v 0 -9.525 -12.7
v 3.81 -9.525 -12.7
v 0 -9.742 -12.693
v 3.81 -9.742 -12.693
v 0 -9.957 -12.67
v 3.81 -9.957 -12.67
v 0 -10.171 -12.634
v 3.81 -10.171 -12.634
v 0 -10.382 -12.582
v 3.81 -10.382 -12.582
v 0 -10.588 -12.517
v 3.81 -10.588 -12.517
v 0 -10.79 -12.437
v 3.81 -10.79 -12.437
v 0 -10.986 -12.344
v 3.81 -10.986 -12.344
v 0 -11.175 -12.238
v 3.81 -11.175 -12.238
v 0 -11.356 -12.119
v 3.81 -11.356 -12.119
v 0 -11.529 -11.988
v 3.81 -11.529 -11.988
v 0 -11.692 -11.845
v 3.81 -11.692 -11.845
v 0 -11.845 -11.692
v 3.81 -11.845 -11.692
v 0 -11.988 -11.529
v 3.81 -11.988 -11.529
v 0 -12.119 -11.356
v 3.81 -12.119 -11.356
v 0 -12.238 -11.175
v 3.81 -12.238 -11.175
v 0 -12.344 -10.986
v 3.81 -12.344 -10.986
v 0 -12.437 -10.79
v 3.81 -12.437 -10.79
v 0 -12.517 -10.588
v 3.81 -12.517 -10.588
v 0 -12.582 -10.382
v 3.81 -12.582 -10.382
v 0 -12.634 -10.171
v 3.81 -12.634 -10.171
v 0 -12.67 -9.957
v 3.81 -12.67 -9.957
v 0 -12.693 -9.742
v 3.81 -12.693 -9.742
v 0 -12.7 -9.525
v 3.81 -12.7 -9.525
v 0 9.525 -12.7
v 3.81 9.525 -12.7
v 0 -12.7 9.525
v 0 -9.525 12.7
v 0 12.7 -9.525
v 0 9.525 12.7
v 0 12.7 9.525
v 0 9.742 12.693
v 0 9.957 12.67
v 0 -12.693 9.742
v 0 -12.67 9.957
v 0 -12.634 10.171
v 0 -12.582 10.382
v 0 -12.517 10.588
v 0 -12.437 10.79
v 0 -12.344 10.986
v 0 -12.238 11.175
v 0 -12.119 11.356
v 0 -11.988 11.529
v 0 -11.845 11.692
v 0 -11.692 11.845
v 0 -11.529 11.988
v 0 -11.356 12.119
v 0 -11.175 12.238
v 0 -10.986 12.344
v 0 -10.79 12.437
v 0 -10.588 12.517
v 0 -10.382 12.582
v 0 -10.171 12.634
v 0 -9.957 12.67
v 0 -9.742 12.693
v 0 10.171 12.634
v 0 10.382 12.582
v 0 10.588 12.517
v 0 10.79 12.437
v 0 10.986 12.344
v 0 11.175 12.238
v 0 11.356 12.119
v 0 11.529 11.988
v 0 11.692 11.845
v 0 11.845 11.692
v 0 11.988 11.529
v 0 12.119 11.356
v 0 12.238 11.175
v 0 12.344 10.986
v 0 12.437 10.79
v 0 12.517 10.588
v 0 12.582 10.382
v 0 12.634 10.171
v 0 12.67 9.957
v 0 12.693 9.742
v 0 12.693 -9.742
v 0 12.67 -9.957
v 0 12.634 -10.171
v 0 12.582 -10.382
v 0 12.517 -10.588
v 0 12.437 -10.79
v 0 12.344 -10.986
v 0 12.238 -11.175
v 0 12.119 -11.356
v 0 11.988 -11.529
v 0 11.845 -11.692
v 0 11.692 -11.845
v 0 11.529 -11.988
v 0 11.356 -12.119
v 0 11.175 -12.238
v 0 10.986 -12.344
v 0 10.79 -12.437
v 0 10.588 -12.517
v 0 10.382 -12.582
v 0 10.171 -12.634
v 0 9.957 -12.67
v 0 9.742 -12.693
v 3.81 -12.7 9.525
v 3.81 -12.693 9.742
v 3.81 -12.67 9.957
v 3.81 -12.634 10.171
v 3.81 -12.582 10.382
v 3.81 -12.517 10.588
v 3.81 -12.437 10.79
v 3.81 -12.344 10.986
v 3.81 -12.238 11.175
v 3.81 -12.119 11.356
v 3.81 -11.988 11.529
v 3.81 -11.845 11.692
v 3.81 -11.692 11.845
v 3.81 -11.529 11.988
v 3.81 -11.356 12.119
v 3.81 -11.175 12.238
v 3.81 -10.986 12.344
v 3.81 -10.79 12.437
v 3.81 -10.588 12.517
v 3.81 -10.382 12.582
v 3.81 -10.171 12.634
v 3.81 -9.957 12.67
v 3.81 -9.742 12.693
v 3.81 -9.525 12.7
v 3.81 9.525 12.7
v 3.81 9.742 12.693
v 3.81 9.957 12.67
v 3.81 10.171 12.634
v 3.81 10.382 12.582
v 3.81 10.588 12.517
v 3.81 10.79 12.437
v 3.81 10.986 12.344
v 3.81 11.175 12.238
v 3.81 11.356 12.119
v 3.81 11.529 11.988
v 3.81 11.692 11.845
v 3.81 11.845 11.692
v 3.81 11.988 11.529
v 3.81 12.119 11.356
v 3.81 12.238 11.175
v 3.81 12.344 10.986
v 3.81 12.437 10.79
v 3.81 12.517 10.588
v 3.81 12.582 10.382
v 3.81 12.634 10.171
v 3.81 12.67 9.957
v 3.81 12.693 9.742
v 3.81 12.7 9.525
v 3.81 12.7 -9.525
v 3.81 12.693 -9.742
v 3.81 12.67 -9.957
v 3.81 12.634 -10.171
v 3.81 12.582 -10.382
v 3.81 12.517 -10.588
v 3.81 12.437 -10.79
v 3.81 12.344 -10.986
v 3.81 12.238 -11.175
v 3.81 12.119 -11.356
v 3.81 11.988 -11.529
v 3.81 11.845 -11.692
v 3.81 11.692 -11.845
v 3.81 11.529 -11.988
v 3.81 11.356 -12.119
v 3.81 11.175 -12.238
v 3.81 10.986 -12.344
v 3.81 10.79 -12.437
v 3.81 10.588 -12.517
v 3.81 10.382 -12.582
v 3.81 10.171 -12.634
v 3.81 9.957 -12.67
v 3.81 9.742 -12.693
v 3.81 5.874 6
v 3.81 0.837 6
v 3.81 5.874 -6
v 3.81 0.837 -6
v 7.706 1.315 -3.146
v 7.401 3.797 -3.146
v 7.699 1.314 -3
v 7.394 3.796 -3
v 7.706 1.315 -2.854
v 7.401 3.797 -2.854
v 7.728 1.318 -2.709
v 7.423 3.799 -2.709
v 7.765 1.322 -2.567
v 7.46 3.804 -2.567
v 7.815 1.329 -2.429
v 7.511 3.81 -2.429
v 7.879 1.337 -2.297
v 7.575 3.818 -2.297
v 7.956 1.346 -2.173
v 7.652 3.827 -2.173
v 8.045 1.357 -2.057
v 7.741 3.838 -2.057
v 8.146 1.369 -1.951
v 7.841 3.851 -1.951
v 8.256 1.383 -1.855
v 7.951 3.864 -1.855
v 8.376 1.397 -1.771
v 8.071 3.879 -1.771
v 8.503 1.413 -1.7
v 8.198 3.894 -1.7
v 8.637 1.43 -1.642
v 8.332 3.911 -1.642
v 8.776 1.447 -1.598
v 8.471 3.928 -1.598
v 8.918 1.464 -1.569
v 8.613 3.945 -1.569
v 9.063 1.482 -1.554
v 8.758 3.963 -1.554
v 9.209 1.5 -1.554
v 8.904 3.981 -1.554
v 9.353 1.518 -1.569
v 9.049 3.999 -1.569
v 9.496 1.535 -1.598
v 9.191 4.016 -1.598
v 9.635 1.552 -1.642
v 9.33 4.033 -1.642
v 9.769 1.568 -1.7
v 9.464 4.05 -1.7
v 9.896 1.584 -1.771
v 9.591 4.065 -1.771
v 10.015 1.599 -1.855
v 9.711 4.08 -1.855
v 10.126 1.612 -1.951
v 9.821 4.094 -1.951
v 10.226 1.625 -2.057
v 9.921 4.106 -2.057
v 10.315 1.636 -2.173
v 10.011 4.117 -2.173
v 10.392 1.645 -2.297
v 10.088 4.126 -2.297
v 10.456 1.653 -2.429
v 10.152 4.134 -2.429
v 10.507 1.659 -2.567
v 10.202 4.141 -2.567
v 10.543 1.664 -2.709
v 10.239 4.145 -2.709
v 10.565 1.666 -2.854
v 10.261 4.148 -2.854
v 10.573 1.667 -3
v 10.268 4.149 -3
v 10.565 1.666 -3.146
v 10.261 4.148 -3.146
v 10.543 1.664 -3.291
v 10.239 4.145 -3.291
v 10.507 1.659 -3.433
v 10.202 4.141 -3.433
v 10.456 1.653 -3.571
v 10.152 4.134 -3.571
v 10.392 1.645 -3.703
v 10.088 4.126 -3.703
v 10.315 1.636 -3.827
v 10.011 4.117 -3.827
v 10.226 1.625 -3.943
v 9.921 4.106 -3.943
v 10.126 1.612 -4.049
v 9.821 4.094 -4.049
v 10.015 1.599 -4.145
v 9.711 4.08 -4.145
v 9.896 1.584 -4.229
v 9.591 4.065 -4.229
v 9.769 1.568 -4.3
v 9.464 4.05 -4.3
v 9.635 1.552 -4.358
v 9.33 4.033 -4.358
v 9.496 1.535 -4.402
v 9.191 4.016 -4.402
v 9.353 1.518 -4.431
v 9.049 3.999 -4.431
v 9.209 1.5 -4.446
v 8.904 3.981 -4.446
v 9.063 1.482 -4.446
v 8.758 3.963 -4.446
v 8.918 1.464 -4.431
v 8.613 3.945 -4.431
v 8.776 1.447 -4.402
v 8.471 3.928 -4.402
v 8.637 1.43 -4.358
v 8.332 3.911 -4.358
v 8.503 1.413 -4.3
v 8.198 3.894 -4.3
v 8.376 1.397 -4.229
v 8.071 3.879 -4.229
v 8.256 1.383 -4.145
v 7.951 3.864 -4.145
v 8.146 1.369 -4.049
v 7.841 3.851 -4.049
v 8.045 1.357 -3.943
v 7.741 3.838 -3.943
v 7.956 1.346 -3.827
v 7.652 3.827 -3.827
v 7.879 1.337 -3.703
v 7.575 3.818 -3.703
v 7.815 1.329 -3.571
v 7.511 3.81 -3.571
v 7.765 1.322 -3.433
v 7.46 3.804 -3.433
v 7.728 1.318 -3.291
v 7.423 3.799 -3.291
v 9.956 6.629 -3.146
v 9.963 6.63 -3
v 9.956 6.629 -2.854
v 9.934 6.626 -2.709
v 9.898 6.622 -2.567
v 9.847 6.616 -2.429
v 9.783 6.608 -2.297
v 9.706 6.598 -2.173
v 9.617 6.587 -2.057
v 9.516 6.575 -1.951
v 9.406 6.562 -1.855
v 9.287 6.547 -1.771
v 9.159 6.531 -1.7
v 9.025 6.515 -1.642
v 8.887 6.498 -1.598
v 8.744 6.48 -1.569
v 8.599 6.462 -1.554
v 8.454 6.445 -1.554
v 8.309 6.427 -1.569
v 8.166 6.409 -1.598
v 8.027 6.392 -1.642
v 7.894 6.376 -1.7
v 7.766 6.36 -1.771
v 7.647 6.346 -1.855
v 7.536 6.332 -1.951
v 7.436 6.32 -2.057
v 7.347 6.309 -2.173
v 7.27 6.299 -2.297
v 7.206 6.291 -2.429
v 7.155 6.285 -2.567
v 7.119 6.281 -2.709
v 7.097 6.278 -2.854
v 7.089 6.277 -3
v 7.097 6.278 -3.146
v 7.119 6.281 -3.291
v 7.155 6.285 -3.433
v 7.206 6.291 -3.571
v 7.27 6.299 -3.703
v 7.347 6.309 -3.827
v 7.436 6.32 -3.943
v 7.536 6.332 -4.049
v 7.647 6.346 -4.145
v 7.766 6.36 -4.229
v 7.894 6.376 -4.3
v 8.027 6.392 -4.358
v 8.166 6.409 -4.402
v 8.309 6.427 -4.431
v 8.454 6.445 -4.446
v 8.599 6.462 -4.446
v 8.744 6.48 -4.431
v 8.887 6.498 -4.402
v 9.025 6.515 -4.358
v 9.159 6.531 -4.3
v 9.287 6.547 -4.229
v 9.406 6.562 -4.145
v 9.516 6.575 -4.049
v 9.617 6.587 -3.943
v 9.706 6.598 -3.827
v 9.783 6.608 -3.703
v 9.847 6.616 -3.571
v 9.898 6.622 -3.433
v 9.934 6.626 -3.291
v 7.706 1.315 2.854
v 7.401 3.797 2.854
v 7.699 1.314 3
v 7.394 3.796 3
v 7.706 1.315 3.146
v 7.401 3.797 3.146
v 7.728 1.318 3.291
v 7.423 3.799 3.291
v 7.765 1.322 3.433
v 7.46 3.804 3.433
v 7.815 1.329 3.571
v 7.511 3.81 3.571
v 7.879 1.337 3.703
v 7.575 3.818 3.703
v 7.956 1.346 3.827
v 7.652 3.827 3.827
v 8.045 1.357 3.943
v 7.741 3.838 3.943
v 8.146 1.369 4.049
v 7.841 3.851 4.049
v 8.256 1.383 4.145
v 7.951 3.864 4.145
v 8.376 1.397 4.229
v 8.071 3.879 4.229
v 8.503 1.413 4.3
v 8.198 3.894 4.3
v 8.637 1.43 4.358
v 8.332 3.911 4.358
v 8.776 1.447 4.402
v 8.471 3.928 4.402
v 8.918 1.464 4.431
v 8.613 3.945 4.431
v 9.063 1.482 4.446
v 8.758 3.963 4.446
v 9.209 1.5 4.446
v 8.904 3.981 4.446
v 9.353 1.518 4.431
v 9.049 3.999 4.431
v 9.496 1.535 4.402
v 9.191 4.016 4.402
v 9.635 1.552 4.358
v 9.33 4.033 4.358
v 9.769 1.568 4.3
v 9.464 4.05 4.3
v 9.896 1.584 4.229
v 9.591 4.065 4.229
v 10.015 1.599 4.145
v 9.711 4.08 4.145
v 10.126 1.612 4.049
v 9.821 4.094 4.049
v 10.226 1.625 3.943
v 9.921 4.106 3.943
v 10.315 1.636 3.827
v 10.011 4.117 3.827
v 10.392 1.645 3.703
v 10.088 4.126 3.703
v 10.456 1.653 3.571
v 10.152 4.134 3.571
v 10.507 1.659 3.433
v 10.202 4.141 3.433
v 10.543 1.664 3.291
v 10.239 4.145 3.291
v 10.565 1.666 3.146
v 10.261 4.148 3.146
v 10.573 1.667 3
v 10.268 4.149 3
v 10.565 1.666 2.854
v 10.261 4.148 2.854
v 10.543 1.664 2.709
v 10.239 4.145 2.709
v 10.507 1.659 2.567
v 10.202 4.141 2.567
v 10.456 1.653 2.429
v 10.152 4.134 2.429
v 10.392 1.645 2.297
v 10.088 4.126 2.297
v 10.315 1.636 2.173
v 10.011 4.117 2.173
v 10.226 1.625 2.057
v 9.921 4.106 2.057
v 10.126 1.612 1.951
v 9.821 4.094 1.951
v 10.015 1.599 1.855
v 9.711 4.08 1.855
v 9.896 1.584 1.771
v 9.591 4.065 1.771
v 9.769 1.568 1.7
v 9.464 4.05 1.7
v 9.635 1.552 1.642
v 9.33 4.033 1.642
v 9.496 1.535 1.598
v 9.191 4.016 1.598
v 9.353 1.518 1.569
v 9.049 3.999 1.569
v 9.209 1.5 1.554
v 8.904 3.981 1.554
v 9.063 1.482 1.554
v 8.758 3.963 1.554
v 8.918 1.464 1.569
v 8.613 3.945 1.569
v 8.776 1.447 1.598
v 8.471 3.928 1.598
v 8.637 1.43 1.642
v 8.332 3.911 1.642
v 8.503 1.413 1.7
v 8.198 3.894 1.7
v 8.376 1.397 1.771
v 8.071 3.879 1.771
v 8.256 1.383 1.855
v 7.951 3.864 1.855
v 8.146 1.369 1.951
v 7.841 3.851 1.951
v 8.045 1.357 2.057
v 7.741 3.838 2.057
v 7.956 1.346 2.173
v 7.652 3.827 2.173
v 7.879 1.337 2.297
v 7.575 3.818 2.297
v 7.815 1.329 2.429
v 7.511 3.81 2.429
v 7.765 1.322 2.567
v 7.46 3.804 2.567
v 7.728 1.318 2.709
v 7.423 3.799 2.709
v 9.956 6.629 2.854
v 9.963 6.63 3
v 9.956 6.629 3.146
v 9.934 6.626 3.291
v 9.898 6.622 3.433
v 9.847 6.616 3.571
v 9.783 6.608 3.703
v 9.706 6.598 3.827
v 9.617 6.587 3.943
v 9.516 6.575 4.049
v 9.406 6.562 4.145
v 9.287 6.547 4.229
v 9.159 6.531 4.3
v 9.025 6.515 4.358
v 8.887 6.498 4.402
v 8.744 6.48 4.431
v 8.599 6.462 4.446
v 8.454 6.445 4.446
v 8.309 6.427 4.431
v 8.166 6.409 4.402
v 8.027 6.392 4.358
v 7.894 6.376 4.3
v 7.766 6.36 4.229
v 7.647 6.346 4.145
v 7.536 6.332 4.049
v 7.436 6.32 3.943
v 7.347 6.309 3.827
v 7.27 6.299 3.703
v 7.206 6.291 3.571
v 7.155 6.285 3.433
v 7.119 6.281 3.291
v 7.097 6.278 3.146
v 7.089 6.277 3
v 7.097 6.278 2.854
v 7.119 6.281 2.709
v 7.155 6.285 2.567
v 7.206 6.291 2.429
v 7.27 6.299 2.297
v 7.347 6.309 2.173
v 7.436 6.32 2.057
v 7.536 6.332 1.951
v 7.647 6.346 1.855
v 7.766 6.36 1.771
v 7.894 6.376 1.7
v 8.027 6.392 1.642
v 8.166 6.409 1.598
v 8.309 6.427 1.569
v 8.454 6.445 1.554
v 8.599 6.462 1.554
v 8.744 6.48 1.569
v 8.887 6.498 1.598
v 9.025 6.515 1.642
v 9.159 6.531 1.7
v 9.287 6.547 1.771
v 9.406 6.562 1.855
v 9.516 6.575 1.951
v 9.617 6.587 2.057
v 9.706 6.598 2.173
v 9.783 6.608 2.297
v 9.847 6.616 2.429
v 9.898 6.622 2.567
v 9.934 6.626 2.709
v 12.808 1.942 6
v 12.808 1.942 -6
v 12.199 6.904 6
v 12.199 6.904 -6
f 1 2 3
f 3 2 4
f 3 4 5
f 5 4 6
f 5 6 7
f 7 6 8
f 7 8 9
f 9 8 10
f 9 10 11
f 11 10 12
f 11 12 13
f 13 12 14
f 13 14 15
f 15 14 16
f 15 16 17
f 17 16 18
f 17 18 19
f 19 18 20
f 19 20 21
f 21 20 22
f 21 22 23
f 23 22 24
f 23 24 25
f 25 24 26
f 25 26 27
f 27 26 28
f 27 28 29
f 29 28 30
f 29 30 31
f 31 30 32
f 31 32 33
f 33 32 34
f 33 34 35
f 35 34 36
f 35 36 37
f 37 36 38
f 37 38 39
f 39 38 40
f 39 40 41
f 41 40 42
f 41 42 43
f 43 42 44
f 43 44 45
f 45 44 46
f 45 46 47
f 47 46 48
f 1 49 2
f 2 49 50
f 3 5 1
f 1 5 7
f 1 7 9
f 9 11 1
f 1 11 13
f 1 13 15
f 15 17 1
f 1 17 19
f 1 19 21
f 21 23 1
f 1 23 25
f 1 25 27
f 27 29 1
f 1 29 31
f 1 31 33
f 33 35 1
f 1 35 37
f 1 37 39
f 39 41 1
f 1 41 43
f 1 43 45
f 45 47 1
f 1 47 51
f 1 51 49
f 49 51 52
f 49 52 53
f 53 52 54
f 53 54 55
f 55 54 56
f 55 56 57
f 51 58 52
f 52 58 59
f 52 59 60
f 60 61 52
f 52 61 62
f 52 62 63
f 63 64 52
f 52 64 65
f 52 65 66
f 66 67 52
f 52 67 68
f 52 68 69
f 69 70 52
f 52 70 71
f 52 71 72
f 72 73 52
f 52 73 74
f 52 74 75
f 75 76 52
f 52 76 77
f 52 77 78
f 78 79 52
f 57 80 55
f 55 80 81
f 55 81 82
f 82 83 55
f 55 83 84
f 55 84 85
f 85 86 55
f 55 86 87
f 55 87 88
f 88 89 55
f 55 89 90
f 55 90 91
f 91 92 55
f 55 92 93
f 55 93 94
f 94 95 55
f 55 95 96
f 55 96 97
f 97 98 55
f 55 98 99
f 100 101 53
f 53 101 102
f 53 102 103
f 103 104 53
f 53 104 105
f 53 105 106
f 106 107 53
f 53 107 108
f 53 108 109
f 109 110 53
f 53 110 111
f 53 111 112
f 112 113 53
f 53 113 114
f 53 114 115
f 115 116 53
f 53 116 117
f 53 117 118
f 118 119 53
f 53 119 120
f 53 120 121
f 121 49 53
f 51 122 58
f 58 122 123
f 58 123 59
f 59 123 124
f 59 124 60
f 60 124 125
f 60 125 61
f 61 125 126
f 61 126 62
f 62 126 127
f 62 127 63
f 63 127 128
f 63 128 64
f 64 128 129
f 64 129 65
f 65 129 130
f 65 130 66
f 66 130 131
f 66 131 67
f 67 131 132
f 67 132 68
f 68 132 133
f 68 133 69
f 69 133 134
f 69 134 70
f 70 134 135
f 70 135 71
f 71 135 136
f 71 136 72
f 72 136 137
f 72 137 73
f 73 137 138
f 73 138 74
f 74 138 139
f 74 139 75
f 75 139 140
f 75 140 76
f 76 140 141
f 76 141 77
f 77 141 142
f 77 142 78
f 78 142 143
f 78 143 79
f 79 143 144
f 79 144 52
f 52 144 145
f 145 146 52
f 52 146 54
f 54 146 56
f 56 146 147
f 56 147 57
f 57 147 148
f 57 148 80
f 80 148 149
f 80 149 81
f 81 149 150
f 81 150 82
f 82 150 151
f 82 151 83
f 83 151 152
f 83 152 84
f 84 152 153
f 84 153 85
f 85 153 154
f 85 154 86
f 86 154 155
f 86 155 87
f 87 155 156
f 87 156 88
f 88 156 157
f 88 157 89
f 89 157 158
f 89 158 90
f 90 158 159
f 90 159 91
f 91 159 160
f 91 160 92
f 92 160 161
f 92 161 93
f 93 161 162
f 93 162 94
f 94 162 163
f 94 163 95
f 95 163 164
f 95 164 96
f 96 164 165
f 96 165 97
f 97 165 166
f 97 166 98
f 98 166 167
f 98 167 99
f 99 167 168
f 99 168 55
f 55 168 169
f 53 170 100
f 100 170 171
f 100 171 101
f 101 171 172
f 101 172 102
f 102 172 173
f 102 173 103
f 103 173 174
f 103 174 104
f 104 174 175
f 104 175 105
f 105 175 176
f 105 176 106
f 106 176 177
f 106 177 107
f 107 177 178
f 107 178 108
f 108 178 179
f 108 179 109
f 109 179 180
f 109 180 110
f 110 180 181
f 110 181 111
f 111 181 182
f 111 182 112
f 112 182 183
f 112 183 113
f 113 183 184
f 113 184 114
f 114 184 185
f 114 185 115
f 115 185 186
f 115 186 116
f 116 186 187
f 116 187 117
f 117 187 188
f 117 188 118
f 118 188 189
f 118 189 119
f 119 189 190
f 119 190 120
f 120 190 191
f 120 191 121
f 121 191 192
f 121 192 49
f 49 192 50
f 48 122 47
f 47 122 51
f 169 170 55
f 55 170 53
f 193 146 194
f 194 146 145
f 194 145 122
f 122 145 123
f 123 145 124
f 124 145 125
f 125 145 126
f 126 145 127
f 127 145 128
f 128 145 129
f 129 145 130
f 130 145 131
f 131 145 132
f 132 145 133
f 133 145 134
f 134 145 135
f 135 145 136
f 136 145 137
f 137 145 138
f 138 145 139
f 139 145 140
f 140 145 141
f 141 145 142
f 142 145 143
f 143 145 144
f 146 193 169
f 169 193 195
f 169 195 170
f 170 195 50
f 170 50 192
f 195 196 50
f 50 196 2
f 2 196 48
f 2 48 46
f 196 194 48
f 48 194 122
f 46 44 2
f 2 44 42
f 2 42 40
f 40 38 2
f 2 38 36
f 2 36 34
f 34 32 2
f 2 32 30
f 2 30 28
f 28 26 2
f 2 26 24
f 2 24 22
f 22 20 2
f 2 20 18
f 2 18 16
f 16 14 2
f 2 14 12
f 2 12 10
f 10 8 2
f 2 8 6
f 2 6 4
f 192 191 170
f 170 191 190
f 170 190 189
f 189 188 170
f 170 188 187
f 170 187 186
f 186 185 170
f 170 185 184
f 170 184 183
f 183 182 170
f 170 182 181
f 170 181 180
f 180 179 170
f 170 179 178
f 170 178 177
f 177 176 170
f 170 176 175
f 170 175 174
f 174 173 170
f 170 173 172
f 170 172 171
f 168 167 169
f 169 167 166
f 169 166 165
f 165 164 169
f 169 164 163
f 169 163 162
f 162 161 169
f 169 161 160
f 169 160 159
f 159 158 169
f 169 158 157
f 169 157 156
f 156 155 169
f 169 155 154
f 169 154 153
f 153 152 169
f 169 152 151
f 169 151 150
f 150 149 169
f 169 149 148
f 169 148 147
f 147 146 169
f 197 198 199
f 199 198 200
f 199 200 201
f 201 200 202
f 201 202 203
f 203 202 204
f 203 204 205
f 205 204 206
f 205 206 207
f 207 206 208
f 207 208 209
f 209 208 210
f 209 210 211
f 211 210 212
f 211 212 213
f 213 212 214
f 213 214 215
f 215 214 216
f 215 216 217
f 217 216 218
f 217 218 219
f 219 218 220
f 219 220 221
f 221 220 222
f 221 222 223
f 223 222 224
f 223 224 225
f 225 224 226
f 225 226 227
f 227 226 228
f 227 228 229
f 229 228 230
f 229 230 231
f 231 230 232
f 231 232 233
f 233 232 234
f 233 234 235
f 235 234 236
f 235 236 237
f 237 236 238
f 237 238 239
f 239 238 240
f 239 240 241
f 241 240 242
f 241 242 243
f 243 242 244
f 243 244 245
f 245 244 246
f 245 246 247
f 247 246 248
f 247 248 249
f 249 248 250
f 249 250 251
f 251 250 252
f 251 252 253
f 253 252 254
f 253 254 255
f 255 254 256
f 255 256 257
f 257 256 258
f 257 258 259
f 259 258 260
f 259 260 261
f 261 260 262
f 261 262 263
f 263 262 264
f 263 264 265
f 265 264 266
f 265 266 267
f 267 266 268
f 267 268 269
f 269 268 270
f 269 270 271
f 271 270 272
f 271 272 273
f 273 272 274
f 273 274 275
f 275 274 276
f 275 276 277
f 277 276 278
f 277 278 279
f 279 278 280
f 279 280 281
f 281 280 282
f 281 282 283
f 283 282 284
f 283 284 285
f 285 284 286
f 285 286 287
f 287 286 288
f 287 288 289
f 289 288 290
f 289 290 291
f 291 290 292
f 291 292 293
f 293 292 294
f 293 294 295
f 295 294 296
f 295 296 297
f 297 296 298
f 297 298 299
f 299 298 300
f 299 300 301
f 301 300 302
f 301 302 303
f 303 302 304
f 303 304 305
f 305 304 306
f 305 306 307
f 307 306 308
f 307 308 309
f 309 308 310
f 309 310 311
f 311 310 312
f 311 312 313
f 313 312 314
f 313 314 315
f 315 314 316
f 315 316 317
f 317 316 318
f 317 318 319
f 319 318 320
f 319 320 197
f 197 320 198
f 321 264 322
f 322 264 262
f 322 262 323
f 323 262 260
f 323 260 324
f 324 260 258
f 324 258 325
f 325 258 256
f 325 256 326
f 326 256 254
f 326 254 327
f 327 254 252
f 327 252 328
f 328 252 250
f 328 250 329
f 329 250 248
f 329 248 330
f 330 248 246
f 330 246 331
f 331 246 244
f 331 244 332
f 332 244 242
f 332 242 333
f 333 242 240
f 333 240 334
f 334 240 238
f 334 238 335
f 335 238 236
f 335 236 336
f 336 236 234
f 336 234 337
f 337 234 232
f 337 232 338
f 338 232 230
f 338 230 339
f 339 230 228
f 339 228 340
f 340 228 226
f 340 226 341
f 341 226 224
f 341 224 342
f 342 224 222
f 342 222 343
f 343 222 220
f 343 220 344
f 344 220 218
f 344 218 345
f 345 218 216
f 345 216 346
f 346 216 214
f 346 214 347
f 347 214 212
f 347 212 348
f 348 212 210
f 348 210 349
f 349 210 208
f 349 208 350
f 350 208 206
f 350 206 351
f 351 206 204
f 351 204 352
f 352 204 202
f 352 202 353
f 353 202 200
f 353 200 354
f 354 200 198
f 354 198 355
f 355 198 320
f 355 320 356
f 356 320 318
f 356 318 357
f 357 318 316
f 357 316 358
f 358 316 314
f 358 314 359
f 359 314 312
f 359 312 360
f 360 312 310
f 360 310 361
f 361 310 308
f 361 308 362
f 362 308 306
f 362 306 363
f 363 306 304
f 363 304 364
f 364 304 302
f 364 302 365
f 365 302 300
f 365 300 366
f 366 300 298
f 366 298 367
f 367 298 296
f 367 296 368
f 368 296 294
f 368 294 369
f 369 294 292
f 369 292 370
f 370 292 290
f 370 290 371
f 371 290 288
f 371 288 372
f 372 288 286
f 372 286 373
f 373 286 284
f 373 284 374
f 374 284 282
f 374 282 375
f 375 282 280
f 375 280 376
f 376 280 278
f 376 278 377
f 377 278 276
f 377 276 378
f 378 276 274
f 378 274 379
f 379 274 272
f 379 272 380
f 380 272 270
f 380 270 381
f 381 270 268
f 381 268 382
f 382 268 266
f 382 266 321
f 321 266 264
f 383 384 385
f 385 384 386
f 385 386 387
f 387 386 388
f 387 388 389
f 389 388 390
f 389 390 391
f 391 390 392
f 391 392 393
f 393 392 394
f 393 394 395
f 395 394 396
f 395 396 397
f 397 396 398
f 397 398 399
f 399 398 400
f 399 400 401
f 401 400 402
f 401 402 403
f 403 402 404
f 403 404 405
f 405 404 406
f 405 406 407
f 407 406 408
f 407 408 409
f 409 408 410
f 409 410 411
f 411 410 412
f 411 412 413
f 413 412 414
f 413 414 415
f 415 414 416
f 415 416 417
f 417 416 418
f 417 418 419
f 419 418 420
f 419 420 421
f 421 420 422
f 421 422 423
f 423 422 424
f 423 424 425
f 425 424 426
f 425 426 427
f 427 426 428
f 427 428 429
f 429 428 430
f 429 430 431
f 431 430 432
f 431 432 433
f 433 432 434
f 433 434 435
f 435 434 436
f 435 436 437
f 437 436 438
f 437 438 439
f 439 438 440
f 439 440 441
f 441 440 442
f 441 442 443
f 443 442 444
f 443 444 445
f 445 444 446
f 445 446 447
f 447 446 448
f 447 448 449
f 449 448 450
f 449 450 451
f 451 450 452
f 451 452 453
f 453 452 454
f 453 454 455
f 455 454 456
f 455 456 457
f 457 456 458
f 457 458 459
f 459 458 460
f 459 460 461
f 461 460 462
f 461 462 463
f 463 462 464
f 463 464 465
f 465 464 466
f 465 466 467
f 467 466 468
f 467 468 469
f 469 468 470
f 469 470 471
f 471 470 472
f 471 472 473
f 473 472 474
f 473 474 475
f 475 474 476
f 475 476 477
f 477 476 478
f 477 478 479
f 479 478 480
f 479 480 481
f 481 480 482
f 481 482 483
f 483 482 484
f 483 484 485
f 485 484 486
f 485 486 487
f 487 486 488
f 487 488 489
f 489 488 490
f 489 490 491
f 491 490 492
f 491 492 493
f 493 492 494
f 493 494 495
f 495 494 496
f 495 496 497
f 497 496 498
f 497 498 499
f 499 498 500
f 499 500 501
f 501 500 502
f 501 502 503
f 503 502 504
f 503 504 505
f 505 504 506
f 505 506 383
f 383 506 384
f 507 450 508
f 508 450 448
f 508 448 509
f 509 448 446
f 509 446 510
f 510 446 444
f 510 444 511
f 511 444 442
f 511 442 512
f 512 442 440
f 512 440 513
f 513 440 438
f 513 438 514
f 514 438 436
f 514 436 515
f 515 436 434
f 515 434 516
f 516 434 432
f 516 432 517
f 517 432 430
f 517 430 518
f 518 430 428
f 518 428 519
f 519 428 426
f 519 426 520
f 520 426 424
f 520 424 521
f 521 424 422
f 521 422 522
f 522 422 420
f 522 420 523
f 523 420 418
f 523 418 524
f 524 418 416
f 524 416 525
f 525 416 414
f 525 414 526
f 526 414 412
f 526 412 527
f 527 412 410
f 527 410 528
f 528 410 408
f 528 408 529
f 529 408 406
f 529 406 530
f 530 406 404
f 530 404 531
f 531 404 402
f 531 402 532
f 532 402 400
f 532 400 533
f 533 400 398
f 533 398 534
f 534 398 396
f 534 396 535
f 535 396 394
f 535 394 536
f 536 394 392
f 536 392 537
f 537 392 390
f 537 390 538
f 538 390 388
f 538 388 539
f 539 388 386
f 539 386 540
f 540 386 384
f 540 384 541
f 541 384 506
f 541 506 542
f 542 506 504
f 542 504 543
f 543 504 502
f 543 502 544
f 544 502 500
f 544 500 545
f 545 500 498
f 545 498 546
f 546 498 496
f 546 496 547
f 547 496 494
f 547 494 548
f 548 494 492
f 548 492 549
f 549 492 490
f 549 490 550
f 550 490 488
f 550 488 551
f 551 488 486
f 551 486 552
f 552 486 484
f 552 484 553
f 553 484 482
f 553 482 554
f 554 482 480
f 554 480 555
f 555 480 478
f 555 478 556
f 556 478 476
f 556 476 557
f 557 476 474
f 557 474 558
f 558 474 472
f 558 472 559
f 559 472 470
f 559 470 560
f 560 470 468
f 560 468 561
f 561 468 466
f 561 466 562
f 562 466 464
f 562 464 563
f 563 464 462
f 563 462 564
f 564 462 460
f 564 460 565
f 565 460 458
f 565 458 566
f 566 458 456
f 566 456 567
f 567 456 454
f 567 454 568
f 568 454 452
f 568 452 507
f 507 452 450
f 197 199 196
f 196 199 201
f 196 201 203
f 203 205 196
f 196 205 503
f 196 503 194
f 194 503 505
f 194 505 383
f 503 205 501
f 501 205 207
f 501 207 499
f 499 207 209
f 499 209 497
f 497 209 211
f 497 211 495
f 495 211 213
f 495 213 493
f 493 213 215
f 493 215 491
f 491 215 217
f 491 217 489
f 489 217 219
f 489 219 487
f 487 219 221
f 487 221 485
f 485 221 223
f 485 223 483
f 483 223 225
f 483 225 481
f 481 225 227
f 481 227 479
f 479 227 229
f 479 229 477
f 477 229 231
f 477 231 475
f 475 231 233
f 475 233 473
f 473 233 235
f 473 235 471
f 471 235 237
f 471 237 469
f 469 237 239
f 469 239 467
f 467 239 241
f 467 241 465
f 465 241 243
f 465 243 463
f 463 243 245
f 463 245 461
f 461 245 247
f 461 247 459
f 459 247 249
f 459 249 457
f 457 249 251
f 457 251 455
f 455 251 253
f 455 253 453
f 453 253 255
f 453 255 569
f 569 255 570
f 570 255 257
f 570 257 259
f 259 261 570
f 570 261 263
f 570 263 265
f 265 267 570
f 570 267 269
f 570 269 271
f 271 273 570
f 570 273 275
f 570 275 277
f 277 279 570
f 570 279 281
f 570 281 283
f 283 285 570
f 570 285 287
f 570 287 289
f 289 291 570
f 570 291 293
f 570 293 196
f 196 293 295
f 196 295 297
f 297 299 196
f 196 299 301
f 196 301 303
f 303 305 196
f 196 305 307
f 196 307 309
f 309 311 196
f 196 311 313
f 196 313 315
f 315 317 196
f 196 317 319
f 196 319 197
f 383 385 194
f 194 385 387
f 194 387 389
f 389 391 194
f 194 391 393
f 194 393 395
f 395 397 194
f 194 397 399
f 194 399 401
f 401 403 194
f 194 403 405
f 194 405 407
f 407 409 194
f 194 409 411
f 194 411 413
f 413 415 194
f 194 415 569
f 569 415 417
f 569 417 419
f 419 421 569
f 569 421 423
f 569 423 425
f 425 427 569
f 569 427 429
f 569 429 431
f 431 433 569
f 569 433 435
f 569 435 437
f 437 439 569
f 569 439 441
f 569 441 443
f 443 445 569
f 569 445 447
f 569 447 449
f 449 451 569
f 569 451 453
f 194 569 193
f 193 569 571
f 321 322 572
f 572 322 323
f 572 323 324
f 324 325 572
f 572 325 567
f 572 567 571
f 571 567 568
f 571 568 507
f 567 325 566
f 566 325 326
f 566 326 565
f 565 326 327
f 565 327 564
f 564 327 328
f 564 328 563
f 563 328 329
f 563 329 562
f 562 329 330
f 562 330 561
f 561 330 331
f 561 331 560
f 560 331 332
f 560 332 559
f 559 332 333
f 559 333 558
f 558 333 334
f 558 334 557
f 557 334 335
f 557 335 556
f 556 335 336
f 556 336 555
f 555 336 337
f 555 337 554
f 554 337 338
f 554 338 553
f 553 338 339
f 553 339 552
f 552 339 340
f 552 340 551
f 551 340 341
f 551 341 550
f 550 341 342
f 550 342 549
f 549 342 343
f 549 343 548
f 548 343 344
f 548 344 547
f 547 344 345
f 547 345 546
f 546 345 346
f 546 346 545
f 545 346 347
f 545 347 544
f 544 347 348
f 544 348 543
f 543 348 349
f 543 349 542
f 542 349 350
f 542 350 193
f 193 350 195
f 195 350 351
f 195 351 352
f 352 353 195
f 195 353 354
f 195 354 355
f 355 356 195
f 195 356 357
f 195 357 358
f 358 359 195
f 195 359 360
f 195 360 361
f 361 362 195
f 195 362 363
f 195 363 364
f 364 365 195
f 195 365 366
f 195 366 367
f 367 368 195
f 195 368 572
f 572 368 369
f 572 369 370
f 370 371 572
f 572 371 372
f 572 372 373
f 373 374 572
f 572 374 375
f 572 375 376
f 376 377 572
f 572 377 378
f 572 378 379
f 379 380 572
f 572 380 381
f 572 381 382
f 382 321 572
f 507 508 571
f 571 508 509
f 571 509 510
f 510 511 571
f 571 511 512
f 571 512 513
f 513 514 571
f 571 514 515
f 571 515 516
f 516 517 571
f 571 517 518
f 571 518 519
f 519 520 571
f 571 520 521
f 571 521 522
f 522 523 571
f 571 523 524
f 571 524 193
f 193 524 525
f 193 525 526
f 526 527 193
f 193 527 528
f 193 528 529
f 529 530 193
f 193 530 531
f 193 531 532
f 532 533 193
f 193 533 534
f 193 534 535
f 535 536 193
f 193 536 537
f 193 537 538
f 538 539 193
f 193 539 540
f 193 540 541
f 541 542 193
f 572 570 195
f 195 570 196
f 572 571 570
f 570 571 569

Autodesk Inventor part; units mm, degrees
ref_plane "YZ Plane" through (0, 0, 0) normal (1, 0, 0) x (0, 1, 0)
ref_plane "XZ Plane" through (0, 0, 0) normal (0, 1, 0) x (-1, 0, 0)
sketch "Sketch1" plane through (0, 0, 0) normal (1, 0, 0) x (0, 1, 0)
  line L0 (-12.7, 12.7) -> (12.7, 12.7)
  line L1 (12.7, 12.7) -> (12.7, -12.7)
  line L2 (12.7, -12.7) -> (-12.7, -12.7)
  line L3 (-12.7, -12.7) -> (-12.7, 12.7)
  line L4 (-12.7, 12.7) -> (12.7, -12.7) construction
  line L5 (12.7, 12.7) -> (-12.7, -12.7) construction
  point P0 (0, 0)
  dimension "d0" = 25.4
  dimension "d1" = 25.4
extrude "Extrusion1" add sketch "Sketch1" along normal blind 3.81
ref_plane "Work Plane2" through (3.81, 12.7, -12.7) normal (0.9925462, 0.1218693, 0) x (0, 0, 1)
sketch "Sketch2" plane through (5.3342, 0.2862, 0) normal (0.9925462, 0.1218693, 0) x (0, 0, -1)
  line L0 (-6, 0.7324) -> (6, 0.7324)
  line L1 (6, 0.7324) -> (6, 5.7324)
  line L2 (6, 5.7324) -> (-6, 5.7324)
  line L3 (-6, 5.7324) -> (-6, 0.7324)
  line L4 (-6, 0.7324) -> (6, 5.7324) construction
  line L5 (6, 0.7324) -> (-6, 5.7324) construction
  point P0 (0, 0.366)
  point P1 (0, 3.2324)
  dimension "d4" = 12
  dimension "d5" = 5
extrude "Extrusion2" add sketch "Sketch2" along normal blind 7.62
sketch "Sketch3" plane through (3.81, 5.8744, 6) normal (-0.1218693, 0.9925462, 0) x (0.9925462, 0.1218693, 0)
  line L0 (8.4518, 12) -> (8.4518, 0) projected
  line L1 (13.7995, 6) -> (-14.4563, 6) projected
  point P0 (-4.4975, 6)
  point P1 (4.7518, 3)
  dimension "d8" = 3.7
  dimension "d9" = 3
hole "Hole1" at (8.5264, 6.4535, 3) direction (0.1218693, -0.9925462, 0) diameter 2.8956 end through all clearance for "Flat Head Machine Screw" size "M2.5" standard "Ansi Metric M Profile"
mirror "Mirror1" about plane through (0, 0, 0) normal (0, 0, 1) of "Hole1"
sketch "Sketch4" plane through (0, 0, 0) normal (0, 0, 1) x (1, 0, 0)
  arc A0 (2.54, 0) -> (-200.66, 0) centre (-99.06, 0) ccw
  line L0 (0, 12.7) -> (0, -12.7) projected
  line L1 (-241.3, 0) -> (43.18, 0) projected
  line L2 (-200.66, 0) -> (2.54, 0)
  line L3 (-241.3, 0) -> (43.18, 0) projected
  point P0 (0, 0)
  dimension "d17" = 203.2
  dimension "d18" = 99.06
revolve "Revolution1" [suppressed]
fillet "Fillet1" radius 3.175 4 edges at (1.905, 12.7, -12.7) (1.905, 12.7, 12.7) (1.905, -12.7, 12.7) (1.905, -12.7, -12.7)
fillet "Fillet2" [suppressed]
sketch "Sketch5" plane through (5.3342, 0.2862, 0) normal (-0.9925462, -0.1218693, 0) x (0, 0, 1)
  line L0 (-6, 0.7324) -> (-6, 5.7324) projected
  line L1 (6, 0.7324) -> (-6, 0.7324) projected
  line L2 (6, 5.7324) -> (6, 0.7324) projected
  line L3 (-6, 5.7324) -> (6, 5.7324) projected
  point P0 (0, 0.366)
extrude "Extrusion3" add sketch "Sketch5" along normal up to surface surface through (3.81, 0, 0) normal (1, 0, 0)
ref_plane "Work Plane1" through (0, 0, 0) normal (0, 0, 1) x (1, 0, 0)
properties part number "BrakeShoeWithTilt_Base"
